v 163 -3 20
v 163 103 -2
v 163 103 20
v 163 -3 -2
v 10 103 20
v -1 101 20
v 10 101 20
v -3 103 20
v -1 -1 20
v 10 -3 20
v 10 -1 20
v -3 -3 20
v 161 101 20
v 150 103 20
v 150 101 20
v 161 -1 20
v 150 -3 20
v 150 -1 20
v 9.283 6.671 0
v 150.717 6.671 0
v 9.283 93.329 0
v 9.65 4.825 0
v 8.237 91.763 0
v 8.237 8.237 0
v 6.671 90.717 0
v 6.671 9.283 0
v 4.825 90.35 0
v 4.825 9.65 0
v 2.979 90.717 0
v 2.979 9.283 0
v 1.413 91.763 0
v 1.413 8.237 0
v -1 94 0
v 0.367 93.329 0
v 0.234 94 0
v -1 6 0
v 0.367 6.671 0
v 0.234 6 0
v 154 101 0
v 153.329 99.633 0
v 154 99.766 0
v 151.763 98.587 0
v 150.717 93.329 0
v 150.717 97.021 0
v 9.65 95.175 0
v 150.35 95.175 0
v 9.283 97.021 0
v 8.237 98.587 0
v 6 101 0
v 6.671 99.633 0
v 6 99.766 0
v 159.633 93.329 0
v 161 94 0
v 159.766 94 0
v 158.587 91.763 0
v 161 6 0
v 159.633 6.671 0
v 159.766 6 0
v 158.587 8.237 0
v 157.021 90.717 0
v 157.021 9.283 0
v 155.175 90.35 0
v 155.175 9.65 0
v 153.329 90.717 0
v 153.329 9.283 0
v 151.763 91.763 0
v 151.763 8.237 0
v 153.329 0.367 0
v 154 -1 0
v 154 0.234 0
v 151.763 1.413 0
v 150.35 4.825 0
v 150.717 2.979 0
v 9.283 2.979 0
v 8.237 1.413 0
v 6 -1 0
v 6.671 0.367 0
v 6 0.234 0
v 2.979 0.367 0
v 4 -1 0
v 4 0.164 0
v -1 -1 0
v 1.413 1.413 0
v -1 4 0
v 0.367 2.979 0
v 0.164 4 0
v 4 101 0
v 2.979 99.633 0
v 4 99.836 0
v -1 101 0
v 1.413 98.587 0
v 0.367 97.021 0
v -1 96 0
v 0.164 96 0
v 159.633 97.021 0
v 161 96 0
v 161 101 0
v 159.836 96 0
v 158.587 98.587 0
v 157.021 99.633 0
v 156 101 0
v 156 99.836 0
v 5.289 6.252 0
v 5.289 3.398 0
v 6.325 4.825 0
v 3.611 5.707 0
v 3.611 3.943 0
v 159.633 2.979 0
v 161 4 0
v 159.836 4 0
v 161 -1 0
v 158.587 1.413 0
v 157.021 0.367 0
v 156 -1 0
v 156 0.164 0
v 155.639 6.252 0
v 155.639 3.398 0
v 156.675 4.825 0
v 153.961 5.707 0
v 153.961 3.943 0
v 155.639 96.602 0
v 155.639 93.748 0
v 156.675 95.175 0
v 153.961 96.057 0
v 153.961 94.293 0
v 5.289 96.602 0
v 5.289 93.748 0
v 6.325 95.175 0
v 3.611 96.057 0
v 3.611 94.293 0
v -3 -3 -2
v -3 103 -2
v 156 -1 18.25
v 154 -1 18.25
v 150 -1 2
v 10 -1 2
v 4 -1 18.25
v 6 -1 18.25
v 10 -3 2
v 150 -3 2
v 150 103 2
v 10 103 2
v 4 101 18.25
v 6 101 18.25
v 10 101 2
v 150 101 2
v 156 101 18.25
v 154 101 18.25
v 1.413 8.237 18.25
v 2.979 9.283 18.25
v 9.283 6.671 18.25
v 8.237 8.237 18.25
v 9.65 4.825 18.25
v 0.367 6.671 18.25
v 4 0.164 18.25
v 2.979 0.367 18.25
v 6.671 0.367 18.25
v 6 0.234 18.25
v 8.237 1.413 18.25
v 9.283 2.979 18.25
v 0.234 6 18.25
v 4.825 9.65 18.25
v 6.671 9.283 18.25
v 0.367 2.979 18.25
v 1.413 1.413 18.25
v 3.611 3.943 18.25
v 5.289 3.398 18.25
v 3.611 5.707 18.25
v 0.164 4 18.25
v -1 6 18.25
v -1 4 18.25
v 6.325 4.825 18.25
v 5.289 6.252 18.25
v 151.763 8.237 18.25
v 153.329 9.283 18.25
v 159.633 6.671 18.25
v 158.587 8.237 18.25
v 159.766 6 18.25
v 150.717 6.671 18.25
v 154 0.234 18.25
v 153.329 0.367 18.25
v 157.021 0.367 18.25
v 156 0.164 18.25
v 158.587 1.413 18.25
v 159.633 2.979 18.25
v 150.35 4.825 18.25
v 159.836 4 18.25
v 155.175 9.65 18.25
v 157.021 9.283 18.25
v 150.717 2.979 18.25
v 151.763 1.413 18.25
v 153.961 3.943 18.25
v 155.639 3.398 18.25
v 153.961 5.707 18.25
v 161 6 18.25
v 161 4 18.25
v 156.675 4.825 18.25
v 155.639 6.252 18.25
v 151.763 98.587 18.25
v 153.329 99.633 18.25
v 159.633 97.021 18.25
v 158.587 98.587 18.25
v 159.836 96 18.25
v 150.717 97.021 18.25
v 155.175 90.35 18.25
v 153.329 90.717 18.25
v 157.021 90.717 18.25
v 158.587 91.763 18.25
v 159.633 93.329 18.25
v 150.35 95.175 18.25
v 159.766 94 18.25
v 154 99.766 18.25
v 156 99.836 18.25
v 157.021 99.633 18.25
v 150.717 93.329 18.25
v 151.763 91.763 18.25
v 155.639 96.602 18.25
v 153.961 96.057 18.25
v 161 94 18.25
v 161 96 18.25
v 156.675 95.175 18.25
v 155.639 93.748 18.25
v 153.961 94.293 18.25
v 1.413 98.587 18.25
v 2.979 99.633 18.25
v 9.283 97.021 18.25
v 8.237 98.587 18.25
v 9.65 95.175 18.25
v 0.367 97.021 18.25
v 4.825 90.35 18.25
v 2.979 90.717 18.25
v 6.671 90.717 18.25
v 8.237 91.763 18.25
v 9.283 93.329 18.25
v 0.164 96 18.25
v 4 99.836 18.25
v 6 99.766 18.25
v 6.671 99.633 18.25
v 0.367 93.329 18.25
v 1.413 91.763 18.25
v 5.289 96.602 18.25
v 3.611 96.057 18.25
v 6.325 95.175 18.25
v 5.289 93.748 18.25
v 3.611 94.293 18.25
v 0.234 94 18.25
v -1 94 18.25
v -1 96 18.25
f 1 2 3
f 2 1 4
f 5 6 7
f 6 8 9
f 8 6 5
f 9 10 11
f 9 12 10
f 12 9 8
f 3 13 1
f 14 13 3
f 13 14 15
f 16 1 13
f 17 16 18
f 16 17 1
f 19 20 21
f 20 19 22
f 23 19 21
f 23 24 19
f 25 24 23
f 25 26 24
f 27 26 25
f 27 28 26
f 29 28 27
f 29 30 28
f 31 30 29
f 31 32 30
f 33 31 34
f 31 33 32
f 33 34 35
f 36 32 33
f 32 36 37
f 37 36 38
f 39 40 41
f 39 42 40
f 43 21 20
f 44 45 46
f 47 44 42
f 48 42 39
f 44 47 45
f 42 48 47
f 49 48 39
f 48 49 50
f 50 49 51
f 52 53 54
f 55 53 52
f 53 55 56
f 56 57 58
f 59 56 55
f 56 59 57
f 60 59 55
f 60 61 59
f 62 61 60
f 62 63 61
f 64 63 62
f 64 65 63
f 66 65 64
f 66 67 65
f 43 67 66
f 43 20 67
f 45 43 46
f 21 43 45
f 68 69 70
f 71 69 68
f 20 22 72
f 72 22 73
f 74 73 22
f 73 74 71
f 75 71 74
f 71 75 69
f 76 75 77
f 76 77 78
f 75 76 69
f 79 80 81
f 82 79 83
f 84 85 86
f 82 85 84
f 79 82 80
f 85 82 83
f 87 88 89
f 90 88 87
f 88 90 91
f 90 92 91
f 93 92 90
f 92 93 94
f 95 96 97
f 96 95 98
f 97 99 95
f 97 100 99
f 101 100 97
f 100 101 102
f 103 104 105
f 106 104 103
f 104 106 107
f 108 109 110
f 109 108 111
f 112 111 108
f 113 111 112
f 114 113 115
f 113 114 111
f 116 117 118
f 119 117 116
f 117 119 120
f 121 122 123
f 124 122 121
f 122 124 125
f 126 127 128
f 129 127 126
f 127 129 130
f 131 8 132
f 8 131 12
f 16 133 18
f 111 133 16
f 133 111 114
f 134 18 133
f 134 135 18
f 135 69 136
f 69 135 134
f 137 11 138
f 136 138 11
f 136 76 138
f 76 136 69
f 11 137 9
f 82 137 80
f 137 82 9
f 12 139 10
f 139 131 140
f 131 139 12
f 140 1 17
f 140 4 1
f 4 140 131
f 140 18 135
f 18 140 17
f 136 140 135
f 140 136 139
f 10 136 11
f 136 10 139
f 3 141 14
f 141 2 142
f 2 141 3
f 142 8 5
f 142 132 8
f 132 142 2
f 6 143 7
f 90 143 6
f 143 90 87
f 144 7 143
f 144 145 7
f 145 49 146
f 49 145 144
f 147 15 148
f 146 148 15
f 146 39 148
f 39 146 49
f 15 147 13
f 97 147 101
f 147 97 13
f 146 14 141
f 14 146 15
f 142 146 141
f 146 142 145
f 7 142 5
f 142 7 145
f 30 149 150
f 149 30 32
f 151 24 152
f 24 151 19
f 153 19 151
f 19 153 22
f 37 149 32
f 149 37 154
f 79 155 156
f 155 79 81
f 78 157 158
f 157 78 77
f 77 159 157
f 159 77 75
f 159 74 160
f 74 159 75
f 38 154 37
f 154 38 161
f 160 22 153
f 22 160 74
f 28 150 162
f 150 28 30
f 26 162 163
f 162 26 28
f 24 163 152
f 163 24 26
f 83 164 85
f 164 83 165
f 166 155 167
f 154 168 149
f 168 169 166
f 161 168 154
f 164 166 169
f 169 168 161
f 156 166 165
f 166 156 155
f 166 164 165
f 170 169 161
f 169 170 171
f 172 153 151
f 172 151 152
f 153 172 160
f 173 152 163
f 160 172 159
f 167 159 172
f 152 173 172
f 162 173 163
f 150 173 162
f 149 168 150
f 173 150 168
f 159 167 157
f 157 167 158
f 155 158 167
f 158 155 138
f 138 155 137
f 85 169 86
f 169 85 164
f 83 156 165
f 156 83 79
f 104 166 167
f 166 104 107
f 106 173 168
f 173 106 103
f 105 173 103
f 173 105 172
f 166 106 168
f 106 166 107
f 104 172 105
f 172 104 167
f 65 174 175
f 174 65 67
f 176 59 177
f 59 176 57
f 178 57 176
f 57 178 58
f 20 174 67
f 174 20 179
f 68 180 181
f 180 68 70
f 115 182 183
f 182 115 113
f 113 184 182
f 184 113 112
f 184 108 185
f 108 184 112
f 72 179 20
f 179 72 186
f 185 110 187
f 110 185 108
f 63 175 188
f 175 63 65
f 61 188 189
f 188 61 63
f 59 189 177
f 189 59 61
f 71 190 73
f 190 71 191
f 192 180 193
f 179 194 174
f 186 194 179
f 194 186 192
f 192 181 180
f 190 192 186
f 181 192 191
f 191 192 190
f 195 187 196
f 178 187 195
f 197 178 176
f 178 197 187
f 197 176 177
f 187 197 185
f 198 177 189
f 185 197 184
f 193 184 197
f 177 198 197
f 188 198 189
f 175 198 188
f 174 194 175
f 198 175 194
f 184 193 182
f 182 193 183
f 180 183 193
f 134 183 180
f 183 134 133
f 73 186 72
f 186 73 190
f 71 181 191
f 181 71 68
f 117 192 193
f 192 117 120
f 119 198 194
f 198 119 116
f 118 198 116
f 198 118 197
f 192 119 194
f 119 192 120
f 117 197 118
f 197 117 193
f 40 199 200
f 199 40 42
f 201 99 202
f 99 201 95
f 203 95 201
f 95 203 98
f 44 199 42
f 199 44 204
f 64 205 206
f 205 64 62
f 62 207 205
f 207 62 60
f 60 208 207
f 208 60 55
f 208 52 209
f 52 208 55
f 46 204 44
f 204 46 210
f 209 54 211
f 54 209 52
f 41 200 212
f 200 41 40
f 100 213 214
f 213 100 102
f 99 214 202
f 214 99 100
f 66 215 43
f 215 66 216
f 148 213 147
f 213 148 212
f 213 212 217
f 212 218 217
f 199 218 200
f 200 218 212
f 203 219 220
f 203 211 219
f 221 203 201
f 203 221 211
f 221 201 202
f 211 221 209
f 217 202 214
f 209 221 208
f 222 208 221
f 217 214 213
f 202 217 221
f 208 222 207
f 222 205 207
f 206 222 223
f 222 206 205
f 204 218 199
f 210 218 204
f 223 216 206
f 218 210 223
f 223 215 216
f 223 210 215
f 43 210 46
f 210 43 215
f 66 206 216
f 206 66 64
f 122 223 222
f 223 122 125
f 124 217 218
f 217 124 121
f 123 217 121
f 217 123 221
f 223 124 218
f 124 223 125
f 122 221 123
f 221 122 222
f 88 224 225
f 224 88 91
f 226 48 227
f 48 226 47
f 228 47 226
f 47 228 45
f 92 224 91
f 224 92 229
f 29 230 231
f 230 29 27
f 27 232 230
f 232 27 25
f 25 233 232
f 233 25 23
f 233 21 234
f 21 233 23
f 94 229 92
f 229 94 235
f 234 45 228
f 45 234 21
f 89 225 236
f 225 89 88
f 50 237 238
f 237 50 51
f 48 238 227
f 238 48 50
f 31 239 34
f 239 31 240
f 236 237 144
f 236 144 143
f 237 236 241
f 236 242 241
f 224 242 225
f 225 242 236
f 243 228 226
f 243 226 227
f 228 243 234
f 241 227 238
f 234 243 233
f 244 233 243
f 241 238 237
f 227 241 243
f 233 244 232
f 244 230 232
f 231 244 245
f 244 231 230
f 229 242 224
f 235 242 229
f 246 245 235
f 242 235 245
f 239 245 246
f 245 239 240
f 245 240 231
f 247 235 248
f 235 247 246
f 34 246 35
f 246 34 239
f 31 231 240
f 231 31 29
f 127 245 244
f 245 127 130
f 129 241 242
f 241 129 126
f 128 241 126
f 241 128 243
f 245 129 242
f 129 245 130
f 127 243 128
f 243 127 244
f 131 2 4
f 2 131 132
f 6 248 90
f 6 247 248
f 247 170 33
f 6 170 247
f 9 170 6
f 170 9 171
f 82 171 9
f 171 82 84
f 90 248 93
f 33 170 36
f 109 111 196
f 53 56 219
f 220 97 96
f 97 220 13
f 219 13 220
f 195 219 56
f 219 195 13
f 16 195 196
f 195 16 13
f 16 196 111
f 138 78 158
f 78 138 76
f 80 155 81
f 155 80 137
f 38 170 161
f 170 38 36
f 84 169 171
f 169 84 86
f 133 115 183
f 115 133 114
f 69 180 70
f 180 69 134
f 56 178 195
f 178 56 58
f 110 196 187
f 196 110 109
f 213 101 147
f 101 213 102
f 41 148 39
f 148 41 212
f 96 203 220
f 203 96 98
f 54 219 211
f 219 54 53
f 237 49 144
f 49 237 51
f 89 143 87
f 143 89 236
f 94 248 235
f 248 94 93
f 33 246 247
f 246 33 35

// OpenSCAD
width = 160;
depth = 100;
tall = 20;
short = 6;
holes = 4.825;

/*
// TOP HALF
translate([0, 0, 0]) {

// bottom
translate([-3, -3, -2]) {
    difference() {
        cube([width+6, depth+6, 2], center = false);
        translate([3+holes, 3+holes, -1]) {
            cylinder(4, 3, 3);
        }
        translate([3+width-holes, 3+holes, -1]) {
            cylinder(4, 3, 3);
        }
        translate([3+width-holes, 3+depth-holes, -1]) {
            cylinder(4, 3, 3);
        }
        translate([3+holes, 3+depth-holes, -1]) {
            cylinder(4, 3, 3);
        }
        translate([3, 3, 0]) {
            translate([46.355,14.605,-1]) {
                cube([70,40.64,4], center = false);
            }
            
            translate([17.78, 27.25, -1]) {
                cylinder(4, 3.5, 3.5);
            }
            translate([10.16, 34.925, -1]) {
                cylinder(4, 3.5, 3.5);
            }
            translate([17.78, 42.49, -1]) {
                cylinder(4, 3.5, 3.5);
            }
            translate([25.4, 34.925, -1]) {
                cylinder(4, 3.5, 3.5);
            }
            
            translate([142.24, 27.25, -1]) {
                cylinder(4, 3.5, 3.5);
            }
            translate([134.62, 34.925, -1]) {
                cylinder(4, 3.5, 3.5);
            }
            translate([142.24, 42.49, -1]) {
                cylinder(4, 3.5, 3.5);
            }
            translate([149.86, 34.925, -1]) {
                cylinder(4, 3.5, 3.5);
            }
            
            translate([37.81, 46.43, -1]) {
                cylinder(4, 3.5, 3.5);
            }
            
            translate([5.715, 17.14, -1]) {
                cylinder(4, 1.75, 1.75);
            }
            translate([154.305, 17.14, -1]) {
                cylinder(4, 1.75, 1.75);
            }
            
            translate([125.02, 19.05, -1]) {
                cylinder(4, 6.25, 6.25);
            }
        }
    }
}

// front
translate([-3, -3, 0]) {
    difference() {
        cube([width+6, 2, short], center = false);
    }
}

// back
translate([-3, depth+1, 0]) {
    difference() {
        cube([width+6, 2, short], center = false);
    }
}

// left
translate([-3, -3, 0]) {
    cube([2, depth+6, short], center = false);
}

// right
translate([width+1, -3, 0]) {
    cube([2, depth+6, short], center = false);
}

// front left corner
translate([holes, holes, 0]) {
    difference() {
        cylinder(short, holes, holes);
        translate([0, 0, -1]) {
            cylinder(short+2, 1.5, 1.5);
        }
    }
}
translate([4, -1, 0]) {
    cube([2, 3, short], center = false);
}
translate([-1, 4, 0]) {
    cube([3, 2, short], center = false);
}

// front right corner
translate([width-holes, holes, 0]) {
    difference() {
        cylinder(short, holes, holes);
        translate([0, 0, -1]) {
            cylinder(short+2, 1.5, 1.5);
        }
    }
}
translate([width-6, -1, 0]) {
    cube([2, 3, short], center = false);
}
translate([width-1, 4, 0]) {
    cube([3, 2, short], center = false);
}

// back right corner
translate([width-holes, depth-holes, 0]) {
    difference() {
        cylinder(short, holes, holes);
        translate([0, 0, -1]) {
            cylinder(short+2, 1.5, 1.5);
        }
    }
}
translate([width-6, depth-1, 0]) {
    cube([2, 3, short], center = false);
}
translate([width-1, depth-6, 0]) {
    cube([3, 2, short], center = false);
}

// back left corner
translate([holes, depth-holes, 0]) {
    difference() {
        cylinder(short, holes, holes);
        translate([0, 0, -1]) {
            cylinder(short+2, 1.5, 1.5);
        }
    }
}
translate([4, depth-1, 0]) {
    cube([2, 3, short], center = false);
}
translate([-1, depth-6, 0]) {
    cube([3, 2, short], center = false);
}      
}
*/


// BOTTOM HALF
//translate([0, 120, 0]) {
translate([0, 0, 0]) {
    
// bottom
translate([-3, -3, -2]) {
    difference() {
        cube([width+6, depth+6, 2], center = false);
        //translate([3+holes, 3+holes, -1]) {
        //    cylinder(4, 3, 3);
        //}
        //translate([3+width-holes, 3+holes, -1]) {
        //    cylinder(4, 3, 3);
        //}
        //translate([3+width-holes, 3+depth-holes, -1]) {
        //    cylinder(4, 3, 3);
        //}
        //translate([3+holes, 3+depth-holes, -1]) {
        //    cylinder(4, 3, 3);
        //}
    }
}

// front
translate([-3, -3, 0]) {
    difference() {
        cube([width+6, 2, tall], center = false);
        translate([13, -0.5, 2]) {
            cube([width-20, 3, tall+1], center = false);
        }
    }
}

// back
translate([-3, depth+1, 0]) {
    difference() {
        cube([width+6, 2, tall], center = false);
        translate([13, -0.5, 2]) {
            cube([width-20, 3, tall+1], center = false);
        }
    }
}

// left
translate([-3, -3, 0]) {
    cube([2, depth+6, tall], center = false);
}

// right
translate([width+1, -3, 0]) {
    cube([2, depth+6, tall], center = false);
}

// front left corner
translate([holes, holes, 0]) {
    difference() {
        cylinder(tall-1.75, holes, holes);
        translate([0, 0, 0]) {
            cylinder(tall, 1.5, 1.5);
        }
    }
}
translate([4, -1, 0]) {
    cube([2, 3, tall-1.75], center = false);
}
translate([-1, 4, 0]) {
    cube([3, 2, tall-1.75], center = false);
}

// front right corner
translate([width-holes, holes, 0]) {
    difference() {
        cylinder(tall-1.75, holes, holes);
        translate([0, 0, 0]) {
            cylinder(tall, 1.5, 1.5);
        }
    }
}
translate([width-6, -1, 0]) {
    cube([2, 3, tall-1.75], center = false);
}
translate([width-1, 4, 0]) {
    cube([3, 2, tall-1.75], center = false);
}

// back right corner
translate([width-holes, depth-holes, 0]) {
    difference() {
        cylinder(tall-1.75, holes, holes);
        translate([0, 0, 0]) {
            cylinder(tall, 1.5, 1.5);
        }
    }
}
translate([width-6, depth-1, 0]) {
    cube([2, 3, tall-1.75], center = false);
}
translate([width-1, depth-6, 0]) {
    cube([3, 2, tall-1.75], center = false);
}

// back left corner
translate([holes, depth-holes, 0]) {
    difference() {
        cylinder(tall-1.75, holes, holes);
        translate([0, 0, 0]) {
            cylinder(tall, 1.5, 1.5);
        }
    }
}
translate([4, depth-1, 0]) {
    cube([2, 3, tall-1.75], center = false);
}
translate([-1, depth-6, 0]) {
    cube([3, 2, tall-1.75], center = false);
}
}
